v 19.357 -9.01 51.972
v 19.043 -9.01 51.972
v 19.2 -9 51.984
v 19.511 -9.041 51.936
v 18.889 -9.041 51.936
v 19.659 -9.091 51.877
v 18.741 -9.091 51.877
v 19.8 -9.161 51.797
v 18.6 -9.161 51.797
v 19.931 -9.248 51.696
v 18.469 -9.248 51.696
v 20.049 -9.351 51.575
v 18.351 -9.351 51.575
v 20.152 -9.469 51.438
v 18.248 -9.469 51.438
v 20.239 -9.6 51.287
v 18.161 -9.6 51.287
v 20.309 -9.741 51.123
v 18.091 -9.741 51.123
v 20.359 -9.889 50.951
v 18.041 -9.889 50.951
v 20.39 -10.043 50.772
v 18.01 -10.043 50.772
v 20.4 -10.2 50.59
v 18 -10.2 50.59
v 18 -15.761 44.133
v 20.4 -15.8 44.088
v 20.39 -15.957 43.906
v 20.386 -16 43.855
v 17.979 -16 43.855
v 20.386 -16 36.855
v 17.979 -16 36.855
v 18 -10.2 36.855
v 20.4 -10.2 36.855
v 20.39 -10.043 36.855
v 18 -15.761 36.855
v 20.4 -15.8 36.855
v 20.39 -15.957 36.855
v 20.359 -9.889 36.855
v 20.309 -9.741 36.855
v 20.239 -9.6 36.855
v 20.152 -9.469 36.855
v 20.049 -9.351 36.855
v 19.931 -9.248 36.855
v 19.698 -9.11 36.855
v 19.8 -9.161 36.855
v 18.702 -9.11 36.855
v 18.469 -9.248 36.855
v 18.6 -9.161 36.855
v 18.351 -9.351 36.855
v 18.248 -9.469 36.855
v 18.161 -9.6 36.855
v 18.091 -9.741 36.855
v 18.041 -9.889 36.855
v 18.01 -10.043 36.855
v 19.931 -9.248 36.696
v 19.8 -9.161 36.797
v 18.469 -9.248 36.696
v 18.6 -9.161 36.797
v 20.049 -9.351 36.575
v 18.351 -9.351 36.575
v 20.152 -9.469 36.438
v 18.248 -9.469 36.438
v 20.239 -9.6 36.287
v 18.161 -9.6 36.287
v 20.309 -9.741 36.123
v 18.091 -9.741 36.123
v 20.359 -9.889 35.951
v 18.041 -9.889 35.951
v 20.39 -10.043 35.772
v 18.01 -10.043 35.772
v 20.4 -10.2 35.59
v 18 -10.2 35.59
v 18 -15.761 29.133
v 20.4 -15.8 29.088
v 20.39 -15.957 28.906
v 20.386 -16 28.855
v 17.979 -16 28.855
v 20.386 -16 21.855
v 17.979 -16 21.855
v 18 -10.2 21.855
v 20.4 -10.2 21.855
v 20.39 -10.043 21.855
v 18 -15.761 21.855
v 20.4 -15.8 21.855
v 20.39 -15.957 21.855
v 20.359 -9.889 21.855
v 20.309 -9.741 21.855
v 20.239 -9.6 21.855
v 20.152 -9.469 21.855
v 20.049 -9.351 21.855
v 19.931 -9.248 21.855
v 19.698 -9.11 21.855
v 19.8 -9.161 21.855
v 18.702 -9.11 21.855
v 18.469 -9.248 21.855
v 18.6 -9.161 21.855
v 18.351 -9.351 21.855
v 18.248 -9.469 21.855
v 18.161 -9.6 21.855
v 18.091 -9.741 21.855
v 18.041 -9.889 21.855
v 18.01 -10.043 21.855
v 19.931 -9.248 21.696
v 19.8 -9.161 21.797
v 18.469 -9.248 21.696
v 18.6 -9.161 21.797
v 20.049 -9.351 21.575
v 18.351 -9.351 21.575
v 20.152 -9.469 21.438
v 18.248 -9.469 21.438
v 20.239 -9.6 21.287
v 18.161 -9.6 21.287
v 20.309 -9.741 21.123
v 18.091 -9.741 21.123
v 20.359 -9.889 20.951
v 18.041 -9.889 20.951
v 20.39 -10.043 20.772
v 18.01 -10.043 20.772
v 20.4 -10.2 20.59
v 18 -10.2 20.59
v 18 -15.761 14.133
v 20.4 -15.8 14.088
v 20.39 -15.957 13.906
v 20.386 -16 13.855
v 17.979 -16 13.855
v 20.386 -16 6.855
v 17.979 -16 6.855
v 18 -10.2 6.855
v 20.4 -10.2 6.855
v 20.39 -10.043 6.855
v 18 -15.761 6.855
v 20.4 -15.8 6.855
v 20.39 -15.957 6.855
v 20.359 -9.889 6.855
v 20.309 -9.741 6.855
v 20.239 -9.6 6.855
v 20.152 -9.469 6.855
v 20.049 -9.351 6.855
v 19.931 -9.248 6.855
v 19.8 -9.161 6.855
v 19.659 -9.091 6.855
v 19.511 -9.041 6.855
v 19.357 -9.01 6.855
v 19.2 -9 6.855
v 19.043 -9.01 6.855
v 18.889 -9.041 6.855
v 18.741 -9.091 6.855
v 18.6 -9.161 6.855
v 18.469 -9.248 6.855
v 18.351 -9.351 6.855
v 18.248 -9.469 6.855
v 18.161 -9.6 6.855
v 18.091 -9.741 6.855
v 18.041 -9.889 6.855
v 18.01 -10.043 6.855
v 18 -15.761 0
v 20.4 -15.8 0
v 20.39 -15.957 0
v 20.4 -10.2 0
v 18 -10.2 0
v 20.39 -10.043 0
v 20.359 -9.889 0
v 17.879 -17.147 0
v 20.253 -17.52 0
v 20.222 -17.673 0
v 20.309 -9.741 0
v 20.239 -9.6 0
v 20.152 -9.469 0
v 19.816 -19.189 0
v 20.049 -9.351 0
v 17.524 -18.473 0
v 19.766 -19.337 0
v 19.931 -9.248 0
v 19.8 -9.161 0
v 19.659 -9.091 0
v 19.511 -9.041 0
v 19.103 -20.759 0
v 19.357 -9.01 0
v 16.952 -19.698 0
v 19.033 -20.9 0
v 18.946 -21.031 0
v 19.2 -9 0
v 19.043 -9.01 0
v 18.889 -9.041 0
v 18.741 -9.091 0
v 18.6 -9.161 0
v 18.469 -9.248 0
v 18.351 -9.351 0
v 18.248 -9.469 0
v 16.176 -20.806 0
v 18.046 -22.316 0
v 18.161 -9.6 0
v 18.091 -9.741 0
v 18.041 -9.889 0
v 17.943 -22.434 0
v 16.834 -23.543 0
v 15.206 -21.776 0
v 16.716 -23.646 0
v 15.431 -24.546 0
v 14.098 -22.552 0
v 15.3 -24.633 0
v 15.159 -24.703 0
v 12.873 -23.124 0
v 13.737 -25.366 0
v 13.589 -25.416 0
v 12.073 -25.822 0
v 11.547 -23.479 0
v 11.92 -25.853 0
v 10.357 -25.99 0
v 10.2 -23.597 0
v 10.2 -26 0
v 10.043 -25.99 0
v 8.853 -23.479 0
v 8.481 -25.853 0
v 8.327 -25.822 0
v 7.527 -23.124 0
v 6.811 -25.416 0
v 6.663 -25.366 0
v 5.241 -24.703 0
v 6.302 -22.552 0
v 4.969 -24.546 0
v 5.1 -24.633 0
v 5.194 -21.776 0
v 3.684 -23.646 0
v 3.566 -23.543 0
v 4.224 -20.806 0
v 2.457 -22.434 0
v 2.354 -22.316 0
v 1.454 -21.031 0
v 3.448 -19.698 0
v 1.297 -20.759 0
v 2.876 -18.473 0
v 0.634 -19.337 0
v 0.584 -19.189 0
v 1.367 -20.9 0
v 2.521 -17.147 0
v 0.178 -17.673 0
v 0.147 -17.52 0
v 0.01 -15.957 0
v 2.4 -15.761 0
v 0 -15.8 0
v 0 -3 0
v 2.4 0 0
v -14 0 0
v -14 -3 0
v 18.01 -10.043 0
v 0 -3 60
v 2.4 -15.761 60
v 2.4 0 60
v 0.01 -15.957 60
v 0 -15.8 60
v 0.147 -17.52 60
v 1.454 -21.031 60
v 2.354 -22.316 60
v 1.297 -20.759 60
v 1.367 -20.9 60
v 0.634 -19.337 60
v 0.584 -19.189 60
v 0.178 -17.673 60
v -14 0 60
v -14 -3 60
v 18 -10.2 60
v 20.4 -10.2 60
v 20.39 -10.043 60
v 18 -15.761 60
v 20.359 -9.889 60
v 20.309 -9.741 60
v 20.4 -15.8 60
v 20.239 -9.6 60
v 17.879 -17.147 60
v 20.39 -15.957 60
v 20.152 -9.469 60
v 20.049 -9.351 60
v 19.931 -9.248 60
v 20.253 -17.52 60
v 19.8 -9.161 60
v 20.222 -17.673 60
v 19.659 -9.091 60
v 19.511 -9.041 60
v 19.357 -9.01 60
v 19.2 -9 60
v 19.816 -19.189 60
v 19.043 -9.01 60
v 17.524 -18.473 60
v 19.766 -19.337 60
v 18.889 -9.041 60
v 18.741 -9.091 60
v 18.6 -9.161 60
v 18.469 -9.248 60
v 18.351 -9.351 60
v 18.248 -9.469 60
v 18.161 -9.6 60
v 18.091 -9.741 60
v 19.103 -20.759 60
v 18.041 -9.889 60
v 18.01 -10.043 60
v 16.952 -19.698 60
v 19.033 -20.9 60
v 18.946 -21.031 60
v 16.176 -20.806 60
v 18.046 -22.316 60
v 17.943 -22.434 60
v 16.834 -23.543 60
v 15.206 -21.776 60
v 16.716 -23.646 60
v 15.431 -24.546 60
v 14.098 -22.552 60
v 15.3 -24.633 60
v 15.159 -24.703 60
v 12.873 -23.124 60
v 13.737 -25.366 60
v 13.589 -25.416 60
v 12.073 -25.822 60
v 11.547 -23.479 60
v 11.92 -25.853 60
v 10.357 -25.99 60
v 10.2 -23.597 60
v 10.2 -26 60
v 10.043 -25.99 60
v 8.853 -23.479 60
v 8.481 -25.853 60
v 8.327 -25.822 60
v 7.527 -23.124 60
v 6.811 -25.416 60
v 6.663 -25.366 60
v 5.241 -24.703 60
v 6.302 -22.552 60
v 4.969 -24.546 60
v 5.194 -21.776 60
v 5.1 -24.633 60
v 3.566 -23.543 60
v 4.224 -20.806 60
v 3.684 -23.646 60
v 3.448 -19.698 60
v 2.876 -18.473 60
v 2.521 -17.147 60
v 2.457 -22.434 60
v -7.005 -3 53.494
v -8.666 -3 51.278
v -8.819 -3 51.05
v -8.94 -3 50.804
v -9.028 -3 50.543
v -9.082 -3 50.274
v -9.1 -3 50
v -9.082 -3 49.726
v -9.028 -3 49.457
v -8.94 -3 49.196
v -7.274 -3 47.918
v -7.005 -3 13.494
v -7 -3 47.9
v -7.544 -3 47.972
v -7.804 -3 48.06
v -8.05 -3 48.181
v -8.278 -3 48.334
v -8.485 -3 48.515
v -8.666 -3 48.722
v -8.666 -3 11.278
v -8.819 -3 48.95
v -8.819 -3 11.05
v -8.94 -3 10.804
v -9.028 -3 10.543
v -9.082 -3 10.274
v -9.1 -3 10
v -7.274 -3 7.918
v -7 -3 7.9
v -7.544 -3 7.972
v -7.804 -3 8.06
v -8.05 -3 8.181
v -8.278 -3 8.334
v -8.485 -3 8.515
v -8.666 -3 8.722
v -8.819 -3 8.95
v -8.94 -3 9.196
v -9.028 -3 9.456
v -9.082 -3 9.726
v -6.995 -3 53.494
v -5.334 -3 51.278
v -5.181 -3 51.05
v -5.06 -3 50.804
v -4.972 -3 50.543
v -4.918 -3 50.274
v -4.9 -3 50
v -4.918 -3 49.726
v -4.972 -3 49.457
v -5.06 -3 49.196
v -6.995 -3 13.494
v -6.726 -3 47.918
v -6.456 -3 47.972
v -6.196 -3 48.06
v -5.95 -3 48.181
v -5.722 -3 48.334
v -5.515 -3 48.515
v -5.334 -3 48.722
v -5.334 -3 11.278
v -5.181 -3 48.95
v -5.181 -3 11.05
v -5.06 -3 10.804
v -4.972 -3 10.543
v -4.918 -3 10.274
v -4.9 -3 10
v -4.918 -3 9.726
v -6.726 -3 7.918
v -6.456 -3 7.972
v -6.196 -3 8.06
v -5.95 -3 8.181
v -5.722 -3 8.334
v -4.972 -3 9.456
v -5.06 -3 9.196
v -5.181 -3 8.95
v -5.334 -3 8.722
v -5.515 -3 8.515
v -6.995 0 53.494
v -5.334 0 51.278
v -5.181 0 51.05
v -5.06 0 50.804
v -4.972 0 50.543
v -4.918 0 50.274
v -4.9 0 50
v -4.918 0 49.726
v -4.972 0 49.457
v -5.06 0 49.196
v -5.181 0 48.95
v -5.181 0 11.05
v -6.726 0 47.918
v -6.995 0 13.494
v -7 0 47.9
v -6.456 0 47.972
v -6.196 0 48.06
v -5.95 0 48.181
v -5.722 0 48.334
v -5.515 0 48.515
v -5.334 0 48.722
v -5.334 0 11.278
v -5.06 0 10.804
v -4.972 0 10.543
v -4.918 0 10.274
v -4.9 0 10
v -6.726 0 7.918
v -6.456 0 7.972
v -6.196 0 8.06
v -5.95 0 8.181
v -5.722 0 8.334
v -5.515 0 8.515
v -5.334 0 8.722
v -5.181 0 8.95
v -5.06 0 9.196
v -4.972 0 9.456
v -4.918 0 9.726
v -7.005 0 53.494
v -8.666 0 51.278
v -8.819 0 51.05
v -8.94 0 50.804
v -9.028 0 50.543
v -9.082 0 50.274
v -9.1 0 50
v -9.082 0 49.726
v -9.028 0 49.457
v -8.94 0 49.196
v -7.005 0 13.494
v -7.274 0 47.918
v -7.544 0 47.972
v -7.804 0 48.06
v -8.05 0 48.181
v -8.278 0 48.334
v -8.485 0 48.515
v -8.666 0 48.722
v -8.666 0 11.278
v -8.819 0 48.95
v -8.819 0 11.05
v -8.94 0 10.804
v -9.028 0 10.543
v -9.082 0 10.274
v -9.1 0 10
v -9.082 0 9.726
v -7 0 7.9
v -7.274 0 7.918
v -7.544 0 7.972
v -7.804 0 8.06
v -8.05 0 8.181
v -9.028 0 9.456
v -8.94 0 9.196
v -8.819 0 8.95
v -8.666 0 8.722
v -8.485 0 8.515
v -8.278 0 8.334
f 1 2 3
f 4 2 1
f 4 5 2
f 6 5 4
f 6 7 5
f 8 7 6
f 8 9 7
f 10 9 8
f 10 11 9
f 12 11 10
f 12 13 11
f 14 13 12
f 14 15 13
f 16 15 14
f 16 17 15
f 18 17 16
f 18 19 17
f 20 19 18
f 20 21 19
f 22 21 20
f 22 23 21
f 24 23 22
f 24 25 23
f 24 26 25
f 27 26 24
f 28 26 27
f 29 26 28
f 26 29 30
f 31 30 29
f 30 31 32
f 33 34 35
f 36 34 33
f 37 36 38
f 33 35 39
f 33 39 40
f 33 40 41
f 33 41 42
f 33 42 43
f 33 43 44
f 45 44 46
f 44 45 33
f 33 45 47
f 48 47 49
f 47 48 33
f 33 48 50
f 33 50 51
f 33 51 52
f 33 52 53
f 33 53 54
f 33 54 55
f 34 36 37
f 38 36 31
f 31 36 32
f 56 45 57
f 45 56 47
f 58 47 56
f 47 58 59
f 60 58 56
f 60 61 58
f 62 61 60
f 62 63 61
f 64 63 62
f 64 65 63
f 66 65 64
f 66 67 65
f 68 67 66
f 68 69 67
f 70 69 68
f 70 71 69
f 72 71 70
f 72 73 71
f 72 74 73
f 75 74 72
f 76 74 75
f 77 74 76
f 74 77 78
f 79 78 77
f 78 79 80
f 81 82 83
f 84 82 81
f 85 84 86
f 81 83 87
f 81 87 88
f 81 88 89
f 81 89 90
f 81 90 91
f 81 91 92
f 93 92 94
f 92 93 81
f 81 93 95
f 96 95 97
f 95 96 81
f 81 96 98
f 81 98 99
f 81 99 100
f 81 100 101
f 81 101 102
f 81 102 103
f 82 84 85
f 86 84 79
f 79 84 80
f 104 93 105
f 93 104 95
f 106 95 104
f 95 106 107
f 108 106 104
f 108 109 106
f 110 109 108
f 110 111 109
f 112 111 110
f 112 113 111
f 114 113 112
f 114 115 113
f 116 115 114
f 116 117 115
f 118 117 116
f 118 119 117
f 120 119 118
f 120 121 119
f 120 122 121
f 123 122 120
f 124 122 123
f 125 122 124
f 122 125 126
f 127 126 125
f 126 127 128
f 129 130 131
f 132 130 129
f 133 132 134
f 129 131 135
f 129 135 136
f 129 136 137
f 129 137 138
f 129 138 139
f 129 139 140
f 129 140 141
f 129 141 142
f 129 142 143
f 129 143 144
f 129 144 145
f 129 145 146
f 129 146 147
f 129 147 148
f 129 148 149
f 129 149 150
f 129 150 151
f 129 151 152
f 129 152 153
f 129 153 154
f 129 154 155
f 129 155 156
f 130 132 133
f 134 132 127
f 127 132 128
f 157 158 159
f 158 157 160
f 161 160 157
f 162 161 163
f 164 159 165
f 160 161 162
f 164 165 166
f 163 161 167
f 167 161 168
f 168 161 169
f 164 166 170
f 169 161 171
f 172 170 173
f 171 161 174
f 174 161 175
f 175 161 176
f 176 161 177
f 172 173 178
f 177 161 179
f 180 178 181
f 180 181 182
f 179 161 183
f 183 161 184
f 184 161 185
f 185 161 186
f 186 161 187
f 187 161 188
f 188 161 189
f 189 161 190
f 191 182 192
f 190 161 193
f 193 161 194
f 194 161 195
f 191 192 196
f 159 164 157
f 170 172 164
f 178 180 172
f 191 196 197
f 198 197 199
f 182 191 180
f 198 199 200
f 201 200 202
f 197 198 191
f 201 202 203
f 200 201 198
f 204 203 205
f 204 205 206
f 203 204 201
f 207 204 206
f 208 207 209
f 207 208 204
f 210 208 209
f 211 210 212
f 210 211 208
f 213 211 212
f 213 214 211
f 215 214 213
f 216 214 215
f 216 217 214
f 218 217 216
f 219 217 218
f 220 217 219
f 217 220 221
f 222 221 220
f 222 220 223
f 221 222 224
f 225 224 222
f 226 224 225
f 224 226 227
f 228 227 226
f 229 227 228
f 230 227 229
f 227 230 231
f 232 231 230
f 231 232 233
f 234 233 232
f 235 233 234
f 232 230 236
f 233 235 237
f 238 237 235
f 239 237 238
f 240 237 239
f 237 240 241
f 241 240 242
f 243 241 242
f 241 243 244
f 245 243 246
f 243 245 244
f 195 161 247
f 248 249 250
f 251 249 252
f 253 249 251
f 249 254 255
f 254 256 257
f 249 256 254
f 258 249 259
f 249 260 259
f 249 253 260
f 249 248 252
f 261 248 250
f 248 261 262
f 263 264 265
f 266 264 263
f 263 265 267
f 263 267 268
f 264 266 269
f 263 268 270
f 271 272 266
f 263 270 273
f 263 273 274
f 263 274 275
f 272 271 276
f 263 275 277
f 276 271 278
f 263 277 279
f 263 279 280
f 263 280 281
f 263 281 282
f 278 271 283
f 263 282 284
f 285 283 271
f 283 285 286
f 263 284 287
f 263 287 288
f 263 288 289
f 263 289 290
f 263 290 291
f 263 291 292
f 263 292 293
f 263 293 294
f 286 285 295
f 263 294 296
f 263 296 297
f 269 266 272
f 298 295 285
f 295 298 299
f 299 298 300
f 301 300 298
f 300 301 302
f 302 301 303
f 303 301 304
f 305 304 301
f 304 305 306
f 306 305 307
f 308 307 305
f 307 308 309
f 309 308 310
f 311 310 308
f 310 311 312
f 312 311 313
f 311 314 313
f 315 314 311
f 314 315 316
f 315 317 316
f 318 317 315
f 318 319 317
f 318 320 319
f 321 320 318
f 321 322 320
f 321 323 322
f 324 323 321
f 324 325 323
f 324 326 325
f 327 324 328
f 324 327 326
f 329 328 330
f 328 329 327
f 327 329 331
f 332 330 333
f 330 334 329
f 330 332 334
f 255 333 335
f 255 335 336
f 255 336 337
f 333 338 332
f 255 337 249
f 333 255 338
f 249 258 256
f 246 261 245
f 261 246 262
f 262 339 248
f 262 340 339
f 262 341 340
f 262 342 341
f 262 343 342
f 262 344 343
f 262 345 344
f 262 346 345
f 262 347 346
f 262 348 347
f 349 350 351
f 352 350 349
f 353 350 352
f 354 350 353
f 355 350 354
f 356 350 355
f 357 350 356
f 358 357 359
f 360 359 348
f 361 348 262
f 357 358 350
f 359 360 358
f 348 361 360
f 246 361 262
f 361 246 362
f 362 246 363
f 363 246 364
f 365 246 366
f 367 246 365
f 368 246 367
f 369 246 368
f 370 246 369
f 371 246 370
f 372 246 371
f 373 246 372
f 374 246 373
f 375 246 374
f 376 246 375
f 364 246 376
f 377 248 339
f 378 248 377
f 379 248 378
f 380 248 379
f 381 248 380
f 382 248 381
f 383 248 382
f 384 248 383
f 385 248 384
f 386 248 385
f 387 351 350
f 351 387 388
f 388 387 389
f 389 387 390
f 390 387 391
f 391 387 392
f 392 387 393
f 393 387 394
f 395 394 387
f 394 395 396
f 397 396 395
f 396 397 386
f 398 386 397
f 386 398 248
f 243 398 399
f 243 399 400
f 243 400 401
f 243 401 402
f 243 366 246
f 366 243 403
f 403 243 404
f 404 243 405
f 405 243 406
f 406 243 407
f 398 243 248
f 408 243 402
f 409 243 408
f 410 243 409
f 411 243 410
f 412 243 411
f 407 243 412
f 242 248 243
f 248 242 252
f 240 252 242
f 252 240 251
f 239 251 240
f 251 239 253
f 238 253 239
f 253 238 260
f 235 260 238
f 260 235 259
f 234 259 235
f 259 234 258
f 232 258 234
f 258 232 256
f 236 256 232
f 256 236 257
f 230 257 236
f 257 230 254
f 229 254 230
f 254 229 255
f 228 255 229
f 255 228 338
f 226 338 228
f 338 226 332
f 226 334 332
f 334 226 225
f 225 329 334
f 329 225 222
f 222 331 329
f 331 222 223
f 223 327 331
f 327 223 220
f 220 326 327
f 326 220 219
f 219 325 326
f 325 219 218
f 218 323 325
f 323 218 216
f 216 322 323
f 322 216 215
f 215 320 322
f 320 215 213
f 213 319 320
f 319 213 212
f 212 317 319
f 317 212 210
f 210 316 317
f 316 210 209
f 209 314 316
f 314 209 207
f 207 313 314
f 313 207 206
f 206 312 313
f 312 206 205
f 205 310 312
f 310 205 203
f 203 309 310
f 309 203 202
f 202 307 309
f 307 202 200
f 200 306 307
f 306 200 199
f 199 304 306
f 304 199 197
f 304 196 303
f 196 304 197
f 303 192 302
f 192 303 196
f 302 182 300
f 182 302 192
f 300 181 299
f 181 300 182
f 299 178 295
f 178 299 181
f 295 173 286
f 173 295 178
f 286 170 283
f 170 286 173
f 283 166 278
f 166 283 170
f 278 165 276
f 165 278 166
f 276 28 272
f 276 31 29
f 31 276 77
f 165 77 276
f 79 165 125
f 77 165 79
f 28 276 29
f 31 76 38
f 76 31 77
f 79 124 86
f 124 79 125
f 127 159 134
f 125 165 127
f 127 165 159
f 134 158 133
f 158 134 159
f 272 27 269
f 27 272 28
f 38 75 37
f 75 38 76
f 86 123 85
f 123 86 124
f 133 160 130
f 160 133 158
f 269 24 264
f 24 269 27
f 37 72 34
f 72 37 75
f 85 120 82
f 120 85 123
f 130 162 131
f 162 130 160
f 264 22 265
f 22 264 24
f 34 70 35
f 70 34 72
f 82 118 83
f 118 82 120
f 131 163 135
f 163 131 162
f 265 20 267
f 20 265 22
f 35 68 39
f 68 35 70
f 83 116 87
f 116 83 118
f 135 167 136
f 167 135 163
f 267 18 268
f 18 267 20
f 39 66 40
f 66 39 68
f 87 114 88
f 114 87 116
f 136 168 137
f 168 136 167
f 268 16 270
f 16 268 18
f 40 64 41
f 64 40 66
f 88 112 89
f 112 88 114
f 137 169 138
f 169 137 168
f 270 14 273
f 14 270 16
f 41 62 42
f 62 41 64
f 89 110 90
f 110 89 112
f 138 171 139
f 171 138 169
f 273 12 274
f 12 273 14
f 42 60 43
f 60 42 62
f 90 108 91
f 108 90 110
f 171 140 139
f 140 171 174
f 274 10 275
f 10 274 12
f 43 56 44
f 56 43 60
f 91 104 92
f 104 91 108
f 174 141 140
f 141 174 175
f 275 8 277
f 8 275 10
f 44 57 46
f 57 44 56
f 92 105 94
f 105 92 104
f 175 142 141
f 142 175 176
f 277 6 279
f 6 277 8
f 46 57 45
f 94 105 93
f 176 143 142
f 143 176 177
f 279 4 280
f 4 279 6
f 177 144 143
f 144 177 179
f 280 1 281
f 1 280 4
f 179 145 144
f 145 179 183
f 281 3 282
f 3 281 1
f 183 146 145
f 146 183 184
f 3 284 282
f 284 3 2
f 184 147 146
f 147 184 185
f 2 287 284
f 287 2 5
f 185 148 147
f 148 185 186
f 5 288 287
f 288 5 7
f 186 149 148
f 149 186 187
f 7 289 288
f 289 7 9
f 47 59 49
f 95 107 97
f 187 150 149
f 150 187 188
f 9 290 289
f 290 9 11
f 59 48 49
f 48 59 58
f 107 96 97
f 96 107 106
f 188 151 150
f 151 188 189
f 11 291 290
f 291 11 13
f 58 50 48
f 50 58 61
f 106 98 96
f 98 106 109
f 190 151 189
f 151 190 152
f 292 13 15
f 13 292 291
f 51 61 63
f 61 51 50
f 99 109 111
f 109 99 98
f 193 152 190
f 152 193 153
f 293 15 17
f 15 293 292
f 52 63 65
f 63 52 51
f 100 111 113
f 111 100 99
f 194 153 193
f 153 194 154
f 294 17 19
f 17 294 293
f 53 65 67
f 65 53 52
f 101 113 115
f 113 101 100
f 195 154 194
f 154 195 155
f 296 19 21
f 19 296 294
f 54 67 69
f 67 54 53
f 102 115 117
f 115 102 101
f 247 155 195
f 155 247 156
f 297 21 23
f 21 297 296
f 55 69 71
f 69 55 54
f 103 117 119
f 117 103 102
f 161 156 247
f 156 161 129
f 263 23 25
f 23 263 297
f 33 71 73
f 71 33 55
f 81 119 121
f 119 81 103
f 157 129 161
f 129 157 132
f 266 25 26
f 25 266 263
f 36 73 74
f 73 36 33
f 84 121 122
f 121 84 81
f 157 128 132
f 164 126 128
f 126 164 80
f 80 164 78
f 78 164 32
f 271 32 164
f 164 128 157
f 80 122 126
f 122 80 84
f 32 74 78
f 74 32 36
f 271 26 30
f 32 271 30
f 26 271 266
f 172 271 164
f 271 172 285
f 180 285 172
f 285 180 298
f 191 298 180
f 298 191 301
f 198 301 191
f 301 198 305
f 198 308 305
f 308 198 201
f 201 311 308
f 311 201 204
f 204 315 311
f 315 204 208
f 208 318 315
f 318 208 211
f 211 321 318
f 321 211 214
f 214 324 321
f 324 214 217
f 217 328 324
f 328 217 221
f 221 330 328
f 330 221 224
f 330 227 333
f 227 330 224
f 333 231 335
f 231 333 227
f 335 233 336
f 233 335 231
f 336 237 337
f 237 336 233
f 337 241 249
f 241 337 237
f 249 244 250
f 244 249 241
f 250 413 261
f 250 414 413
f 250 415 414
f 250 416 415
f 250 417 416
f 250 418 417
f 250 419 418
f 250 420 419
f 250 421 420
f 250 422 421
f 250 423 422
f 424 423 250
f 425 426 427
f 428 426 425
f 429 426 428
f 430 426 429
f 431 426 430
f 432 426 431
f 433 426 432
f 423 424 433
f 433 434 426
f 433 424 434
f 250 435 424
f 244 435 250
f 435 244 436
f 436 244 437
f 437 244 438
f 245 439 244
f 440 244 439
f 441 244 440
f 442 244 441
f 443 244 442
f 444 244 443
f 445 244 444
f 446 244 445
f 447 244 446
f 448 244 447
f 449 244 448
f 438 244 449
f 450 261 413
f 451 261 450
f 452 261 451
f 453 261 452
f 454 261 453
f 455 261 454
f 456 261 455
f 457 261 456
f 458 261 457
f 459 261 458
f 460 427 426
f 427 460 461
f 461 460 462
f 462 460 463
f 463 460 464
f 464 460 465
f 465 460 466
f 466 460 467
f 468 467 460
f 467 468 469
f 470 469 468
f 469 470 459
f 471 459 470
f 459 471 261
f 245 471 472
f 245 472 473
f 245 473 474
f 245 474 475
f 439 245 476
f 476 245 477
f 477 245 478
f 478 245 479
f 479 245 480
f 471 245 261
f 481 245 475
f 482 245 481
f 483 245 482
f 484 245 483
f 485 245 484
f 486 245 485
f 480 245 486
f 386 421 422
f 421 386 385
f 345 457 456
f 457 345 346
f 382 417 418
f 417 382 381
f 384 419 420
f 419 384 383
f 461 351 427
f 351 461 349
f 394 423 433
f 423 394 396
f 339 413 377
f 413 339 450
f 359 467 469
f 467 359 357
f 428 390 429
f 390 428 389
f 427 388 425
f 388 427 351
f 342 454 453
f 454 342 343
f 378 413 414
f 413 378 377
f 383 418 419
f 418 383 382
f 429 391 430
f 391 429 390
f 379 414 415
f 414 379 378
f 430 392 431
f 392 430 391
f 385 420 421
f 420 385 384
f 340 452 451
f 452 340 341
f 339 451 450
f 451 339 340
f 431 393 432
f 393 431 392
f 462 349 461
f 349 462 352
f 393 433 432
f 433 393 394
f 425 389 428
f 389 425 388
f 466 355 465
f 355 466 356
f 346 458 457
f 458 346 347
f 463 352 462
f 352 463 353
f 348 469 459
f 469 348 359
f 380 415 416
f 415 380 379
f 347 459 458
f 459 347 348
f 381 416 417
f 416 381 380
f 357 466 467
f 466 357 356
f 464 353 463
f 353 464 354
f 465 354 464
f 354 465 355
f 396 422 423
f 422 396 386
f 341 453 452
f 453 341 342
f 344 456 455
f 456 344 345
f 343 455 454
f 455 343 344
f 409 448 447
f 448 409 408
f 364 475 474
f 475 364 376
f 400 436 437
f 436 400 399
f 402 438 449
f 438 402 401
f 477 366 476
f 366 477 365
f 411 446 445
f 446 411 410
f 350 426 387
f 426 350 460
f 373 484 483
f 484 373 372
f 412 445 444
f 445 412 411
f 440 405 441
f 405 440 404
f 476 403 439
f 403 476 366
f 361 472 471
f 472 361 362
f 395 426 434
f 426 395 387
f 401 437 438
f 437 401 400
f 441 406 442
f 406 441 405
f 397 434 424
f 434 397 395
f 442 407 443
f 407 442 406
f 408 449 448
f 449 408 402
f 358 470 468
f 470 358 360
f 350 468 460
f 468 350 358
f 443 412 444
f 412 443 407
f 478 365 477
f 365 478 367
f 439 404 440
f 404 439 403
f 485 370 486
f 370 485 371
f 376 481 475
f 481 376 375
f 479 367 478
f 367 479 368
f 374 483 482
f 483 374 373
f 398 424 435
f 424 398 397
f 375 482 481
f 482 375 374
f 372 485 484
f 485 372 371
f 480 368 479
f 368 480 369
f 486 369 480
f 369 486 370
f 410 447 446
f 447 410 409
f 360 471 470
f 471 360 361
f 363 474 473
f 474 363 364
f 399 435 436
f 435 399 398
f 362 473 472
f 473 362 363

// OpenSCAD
// Desk Cable Rail (2026-11-12): v2 of the Cable Hook, form C of five (Scott picked it).
// Benson's thread, from Scott's look at the old hook: a chunky C on an oversized plate,
// two holes that don't explain themselves, a hook that doesn't read as a hook.
//
// A slim J-channel that screws (or tapes) under a desk's front or back edge. Cables
// drop in through the gap between the lip and the desk and lie in a row; three angled
// notches in the lip let a cable leave the rail wherever it needs to go down.
//
// The profile is drawn in the mounted frame: x across (0 = the channel's back wall,
// + toward the room), z up (0 = the desk's underside), the rail along y. It prints
// standing on its y = L end, the length going up, so every wall is upright; laid flat,
// either way, the J's curl would hang in the air. Up on the printer is mounted -y.
//
// No OBC mark: every face prints upright, and engraved letters on an upright face have
// ceilings the slicer props (the first draft's mark on the tab drew supports).
//
//   part = "rail" (as printed) | "mounted" (for renders)
//   L    = length, mm

part = "rail";
L = 60;
$fn = 48;

WALL   = 2.4;      // the channel's walls: 6 beads
FLANGE = 3.0;      // the screw tab
TAB    = 14;       // how far the tab runs behind the channel
CH_W   = 18;       // channel width, wall centre to wall centre
CH_D   = 26;       // from the desk down to the outside of the floor
LIP_Z  = -9;       // top of the front lip: a 9 mm gap to the desk for cables to drop in
HOLE   = 4.2;      // #6 or #8 pan-head wood screw
SLOPE  = 37;       // overhangs, deg from upright (the detail standard's)
NOTCH_D = 7;       // the drop notches: how far below the lip they reach
NOTCH_W = 7;       // and how long along the rail at their bottom

// ---------- the profile: a stroke of WALL along the J, plus the tab ----------
module seg(a, b, w) hull() { translate(a) circle(d = w); translate(b) circle(d = w); }
R = CH_W / 2;
X_BACK = WALL / 2; X_FRONT = X_BACK + CH_W; Z_FLOOR = -CH_D + WALL / 2;
ARC = [for (a = [180 : 10 : 360]) [X_BACK + R + R * cos(a), Z_FLOOR + R + R * sin(a)]];
module profile2d() union() {
    translate([-TAB, -FLANGE]) square([TAB + WALL, FLANGE]);         // tab, flush with the desk
    seg([X_BACK, -FLANGE / 2], [X_BACK, Z_FLOOR + R], WALL);           // back wall
    for (i = [0 : len(ARC) - 2]) seg(ARC[i], ARC[i + 1], WALL);         // the curl
    seg([X_FRONT, Z_FLOOR + R], [X_FRONT, LIP_Z - WALL / 2], WALL);     // front wall up to the lip
}

// screw holes through the tab: across the print. Each a teardrop pointing -y (up on
// the printer).
module hole(y) translate([-TAB / 2, y, -FLANGE - 1]) linear_extrude(FLANGE + 2) hull() {
    circle(d = HOLE);
    translate([0, -HOLE / 2 / sin(SLOPE)]) square(0.01, center = true);
}

// the drop notches, cut down from the lip. Local u runs along +y (down on the printer),
// v is the mounted z. The notch's upper side on the printer (small u) leans SLOPE from
// upright: it runs NOTCH_D / tan(SLOPE) along the rail for its NOTCH_D of depth. A first
// draft leaned the other side, at 53 deg, and the gate's slicer propped every notch.
NOTCH_RUN = NOTCH_D / tan(SLOPE);
module notch(y) translate([X_FRONT, y, 0]) rotate([90, 0, 90]) linear_extrude(WALL + 2, center = true)
    polygon([[0, LIP_Z + 1], [NOTCH_RUN, LIP_Z - NOTCH_D], [NOTCH_RUN + NOTCH_W, LIP_Z - NOTCH_D],
             [NOTCH_RUN + NOTCH_W, LIP_Z + 1]]);
NOTCHES = [for (f = [0.25, 0.5, 0.75]) L * f - (NOTCH_RUN + NOTCH_W) / 2];

module rail_mounted() difference() {
    rotate([90, 0, 0]) translate([0, 0, -L]) linear_extrude(L) profile2d();
    hole(10); hole(L - 10);
    for (y = NOTCHES) notch(y);
}

// as printed: standing on the y = L end
module rail_printed() rotate([-90, 0, 0]) translate([0, -L, 0]) rail_mounted();

// ---------- render props: a desk slab and three cables (not part of the product) ----------
module scene_desk() translate([-40, -30, 0]) cube([90, L + 60, 18]);
CABLES = [[6, 4.5], [11, 6.0], [16, 3.5]];          // [x, diameter]: USB-C, laptop, phone lead
module cable_run(p) cylinder(d = p[1], h = 1, $fn = 24);
module scene_cables() {
    for (c = CABLES) translate([c[0], -25, Z_FLOOR + R - R * 0.55 + c[1] / 2]) rotate([-90, 0, 0])
        cylinder(d = c[1], h = (c == CABLES[2] ? NOTCHES[1] + 25 + NOTCH_RUN + NOTCH_W / 2 : L + 50), $fn = 24);
    // the phone lead leaves through the middle notch and drops toward the floor
    let (c = CABLES[2], y = NOTCHES[1] + NOTCH_RUN + NOTCH_W / 2, z0 = Z_FLOOR + R - R * 0.55 + c[1] / 2) {
        hull() { translate([c[0], y, z0]) sphere(d = c[1], $fn = 24); translate([X_FRONT + 3, y, LIP_Z - NOTCH_D + c[1] / 2]) sphere(d = c[1], $fn = 24); }
        hull() { translate([X_FRONT + 3, y, LIP_Z - NOTCH_D + c[1] / 2]) sphere(d = c[1], $fn = 24); translate([X_FRONT + 8, y, -70]) sphere(d = c[1], $fn = 24); }
    }
}

if (part == "mounted") rail_mounted();
else if (part == "scene_desk") scene_desk();
else if (part == "scene_cables") scene_cables();
else rail_printed();
